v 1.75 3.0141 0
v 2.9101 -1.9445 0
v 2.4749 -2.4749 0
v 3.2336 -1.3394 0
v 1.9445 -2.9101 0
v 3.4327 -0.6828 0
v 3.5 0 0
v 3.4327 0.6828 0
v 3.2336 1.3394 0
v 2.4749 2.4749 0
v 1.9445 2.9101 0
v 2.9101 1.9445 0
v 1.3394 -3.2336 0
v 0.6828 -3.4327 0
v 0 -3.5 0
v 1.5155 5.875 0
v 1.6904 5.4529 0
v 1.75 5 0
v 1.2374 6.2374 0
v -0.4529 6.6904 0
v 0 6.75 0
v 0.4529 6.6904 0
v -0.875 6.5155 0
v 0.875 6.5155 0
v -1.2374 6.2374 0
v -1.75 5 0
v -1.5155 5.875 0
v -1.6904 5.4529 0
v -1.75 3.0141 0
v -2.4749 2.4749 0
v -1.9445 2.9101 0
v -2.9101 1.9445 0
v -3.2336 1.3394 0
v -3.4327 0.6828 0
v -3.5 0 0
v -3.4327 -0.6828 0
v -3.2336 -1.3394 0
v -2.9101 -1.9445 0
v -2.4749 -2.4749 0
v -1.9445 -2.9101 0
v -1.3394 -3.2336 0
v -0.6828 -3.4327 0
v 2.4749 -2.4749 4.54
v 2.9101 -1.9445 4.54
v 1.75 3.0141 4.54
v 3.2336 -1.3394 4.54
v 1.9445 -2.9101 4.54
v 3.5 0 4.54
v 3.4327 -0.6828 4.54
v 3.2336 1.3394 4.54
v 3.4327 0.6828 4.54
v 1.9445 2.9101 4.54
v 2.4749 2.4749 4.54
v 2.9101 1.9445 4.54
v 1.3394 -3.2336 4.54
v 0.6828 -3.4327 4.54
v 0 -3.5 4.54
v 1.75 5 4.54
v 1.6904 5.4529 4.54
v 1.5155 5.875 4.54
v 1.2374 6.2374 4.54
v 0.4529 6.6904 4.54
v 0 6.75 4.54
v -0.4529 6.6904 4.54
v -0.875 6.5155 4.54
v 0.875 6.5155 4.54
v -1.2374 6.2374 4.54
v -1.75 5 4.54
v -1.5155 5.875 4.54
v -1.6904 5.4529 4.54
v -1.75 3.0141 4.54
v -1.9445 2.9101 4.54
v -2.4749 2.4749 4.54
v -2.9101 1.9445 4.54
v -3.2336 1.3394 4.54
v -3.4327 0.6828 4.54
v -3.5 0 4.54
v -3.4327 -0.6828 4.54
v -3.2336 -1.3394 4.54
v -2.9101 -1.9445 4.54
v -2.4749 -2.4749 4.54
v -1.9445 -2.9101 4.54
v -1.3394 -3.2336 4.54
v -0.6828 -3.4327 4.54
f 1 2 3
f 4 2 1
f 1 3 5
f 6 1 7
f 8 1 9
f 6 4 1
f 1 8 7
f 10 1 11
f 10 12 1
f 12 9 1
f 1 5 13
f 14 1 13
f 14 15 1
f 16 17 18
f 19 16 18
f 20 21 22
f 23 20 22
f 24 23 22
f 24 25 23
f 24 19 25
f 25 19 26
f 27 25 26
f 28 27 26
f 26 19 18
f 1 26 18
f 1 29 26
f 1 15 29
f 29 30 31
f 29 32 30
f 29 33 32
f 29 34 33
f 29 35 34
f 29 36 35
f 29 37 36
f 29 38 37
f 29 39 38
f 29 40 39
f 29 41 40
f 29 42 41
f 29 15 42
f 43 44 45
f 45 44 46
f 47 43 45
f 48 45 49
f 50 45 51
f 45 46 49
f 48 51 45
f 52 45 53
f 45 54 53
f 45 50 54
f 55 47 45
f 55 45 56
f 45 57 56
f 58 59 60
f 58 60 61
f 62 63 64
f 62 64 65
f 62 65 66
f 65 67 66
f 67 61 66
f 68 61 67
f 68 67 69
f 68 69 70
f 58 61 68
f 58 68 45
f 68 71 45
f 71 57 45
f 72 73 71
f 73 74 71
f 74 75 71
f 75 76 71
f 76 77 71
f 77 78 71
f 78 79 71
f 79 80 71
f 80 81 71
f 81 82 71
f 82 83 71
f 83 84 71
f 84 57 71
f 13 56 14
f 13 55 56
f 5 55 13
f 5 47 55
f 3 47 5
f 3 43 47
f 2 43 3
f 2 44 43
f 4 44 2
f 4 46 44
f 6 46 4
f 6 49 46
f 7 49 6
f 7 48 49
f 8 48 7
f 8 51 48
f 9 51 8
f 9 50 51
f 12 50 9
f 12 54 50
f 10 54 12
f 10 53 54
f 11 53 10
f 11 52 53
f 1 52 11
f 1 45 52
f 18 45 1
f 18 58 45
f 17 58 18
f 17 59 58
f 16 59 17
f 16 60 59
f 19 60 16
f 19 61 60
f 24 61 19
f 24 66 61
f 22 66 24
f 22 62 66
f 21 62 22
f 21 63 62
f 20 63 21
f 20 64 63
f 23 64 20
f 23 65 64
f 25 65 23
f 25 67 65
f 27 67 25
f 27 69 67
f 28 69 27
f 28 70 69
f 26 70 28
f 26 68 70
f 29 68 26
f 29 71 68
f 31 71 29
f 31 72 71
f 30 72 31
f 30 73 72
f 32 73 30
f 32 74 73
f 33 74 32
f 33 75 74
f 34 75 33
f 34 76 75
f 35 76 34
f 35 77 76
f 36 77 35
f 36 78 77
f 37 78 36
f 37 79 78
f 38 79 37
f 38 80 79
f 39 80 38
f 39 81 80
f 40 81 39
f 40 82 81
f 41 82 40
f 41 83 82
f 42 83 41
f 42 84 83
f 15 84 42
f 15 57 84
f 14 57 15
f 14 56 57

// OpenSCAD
// Modular shadow lamp — millimetres. Read README.md and OPTICS.md.
// Self-contained OpenSCAD 2021.01 / MakerWorld Parametric Model Maker.
// The wall is XY at z=0; +z points into the room. Filled SVG areas transmit light.

/* [View] */
Output = "Assembly"; // [Assembly,Projection,Body,Cover,Print layout,Stack preview,Diagnostics]
Show_rays = false;
Show_report = true;

/* [Artwork] */
Use_svg = false;
// MakerWorld recognizes this variable as an SVG upload control.
Svg_file = "default.svg";
// Select the LONGER artwork axis. The other axis scales proportionally.
Svg_long_axis = "Y"; // [X,Y]
// Longest dimension of the complete artwork BEFORE central occlusion, in mm.
Shadow_length = 300; // [100:5:1500]
// Light shapes matches luminous outlines in the reference photo.
Artwork_mode = "Light shapes"; // [Light shapes,Dark silhouette]
Artwork_rotation = 0; // [-180:1:180]
// Smallest IMPORTANT line or gap, as % of the artwork's longest dimension.
// This is a declared design requirement, NOT an automatic SVG measurement.
Smallest_detail_percent = 5; // [0.1:0.1:20]

/* [Cylinder] */
Cylinder_diameter = 100; // [60:1:250]
// Total closed depth of one module, including its fitted cover.
Cylinder_height = 30; // [18:0.5:200]
Wall_thickness = 2; // [1.2:0.1:4]
// 0 = first module at wall; 1 = second module, etc. Recompute each module.
Module_index = 0; // [0:1:8]

/* [LED and optical quality] */
LED_position = "Automatic"; // [Automatic,Manual height]
// Height of the EMITTING CENTRE above this module's back, not package bottom.
Manual_LED_height = 24; // [0:0.1:200]
// Width of the actual emitting area, not the plastic lens or LED package.
Emitter_diameter = 0.2; // [0:0.01:5]
// Axial thickness of the emitting area. 0 assumes a planar emitter parallel to wall.
Emitter_axial_depth = 0; // [0:0.01:2]
Maximum_blur = 2; // [0.1:0.1:20]
Minimum_cut_width = 0.4; // [0.15:0.05:2]
// Emitting centre above the end of the printed pillar; measure your LED assembly.
Emitter_above_pillar = 3; // [1:0.1:10]
Pillar_diameter = 8; // [4:0.5:20]
Pillar_wire_bore = 3; // [1:0.1:6]

/* [Stencil supports] */
// Spokes interrupt light but can connect otherwise floating opaque islands.
// They do NOT guarantee connectivity for arbitrary artwork; run prepare_svg.py.
Support_bridges = true;
Bridge_count = 12; // [3:1:48]
Bridge_width = 0.8; // [0.4:0.1:2]
Bridge_rotation = 0; // [0:1:180]

/* [Joints and cover] */
Joint_depth = 2.5; // [1.5:0.1:4]
Joint_clearance = 0.2; // [0.1:0.05:0.4]
Cover_plate = 2; // [1.5:0.1:3]
// Radial pilot holes in female collars for optional retaining screws.
Retaining_screws = true;
Screw_pilot_diameter = 2.1; // [1.5:0.1:3]

/* [Quality] */
Cylinder_facets = 180; // [72:12:360]

/* [Hidden] */
$fn = Cylinder_facets;
eps = 0.02;
// prepare_svg.py replaces this block with normalized, embedded SVG geometry.
Embedded_artwork = false;
Embedded_radius_factor = 0.7071067811865476;
// Extra bridge angles added by the helper after checking the actual exported mesh.
Embedded_bridge_angles = [];
// BEGIN EMBEDDED ARTWORK
module embedded_artwork() { square(1, center=true); }
// END EMBEDDED ARTWORK

R = Cylinder_diameter/2;
Ri = R-Wall_thickness;
frame_width = max(4, Wall_thickness+2);
Rf = R-frame_width;
rear_floor = Joint_depth + 2;
rear_guard = 1;
front_guard = 3;
cover_depth = Joint_depth + Cover_plate;
pitch = Cylinder_height-cover_depth;
wall_offset = Module_index*pitch;
aperture_bottom = rear_floor+rear_guard;
aperture_top = pitch-front_guard;
tongue_outer = R-1.4;
tongue_inner = tongue_outer-1.6;
// A square's diagonal gives a conservative envelope for direct SVG import.
// The helper calculates a tighter radius from the actual polygon vertices.
k = Embedded_artwork ? Embedded_radius_factor : (Use_svg ? sqrt(2)/2 : 0.5);
detail_fraction = Smallest_detail_percent/100;
r_far = k*Shadow_length;

function off(H) = Module_index*(H-cover_depth);
function top(H) = off(H)+H-cover_depth-front_guard;
function bottom(H) = off(H)+aperture_bottom;
function ceiling(H) = off(H)+H-Cover_plate-1.5;
// Upper collar is thicker than the optical sidewall, hence Rf, not Ri.
function auto_source(H,L) = min(ceiling(H),
    k*L>Rf ? top(H)/(1-Rf/(k*L)) : ceiling(H));
function source(H,L) = LED_position=="Manual height" ? off(H)+Manual_LED_height : auto_source(H,L);
function dead_radius(H,L) = let(h=source(H,L))
    h>bottom(H) ? max(R*h/(h-bottom(H)), Pillar_diameter/2*h/Emitter_above_pillar) : 1e12;
// Least local stretch from wall artwork to inner cylindrical surface.
function cut_estimate(H,L) = let(h=source(H,L), r=k*L)
    detail_fraction*L*min(Ri/r,h*Ri/(r*r));
// Conservative sum of transverse and axial geometric source blur.
function blur_estimate(H,L) = let(h=source(H,L),r=k*L)
    max(0,r/Ri-1)*(Emitter_diameter+Emitter_axial_depth*r/max(h,eps));
function mechanical_ok(H,L) =
    H-cover_depth-front_guard > aperture_bottom+1 &&
    Ri>Pillar_diameter/2+5 && Rf>tongue_inner-3 &&
    tongue_inner-Joint_clearance>Rf &&
    tongue_outer+Joint_clearance+0.4<R-0.5 &&
    Pillar_wire_bore<Pillar_diameter-1.6 &&
    Screw_pilot_diameter<Joint_depth &&
    source(H,L)-off(H)-Emitter_above_pillar>rear_floor+1;
function quality_ok(H,L) = cut_estimate(H,L)>=Minimum_cut_width-1e-9 &&
    blur_estimate(H,L)<=Maximum_blur+1e-9;
function feasible(H,L) = mechanical_ok(H,L) && quality_ok(H,L) &&
    source(H,L)>bottom(H)+1 && source(H,L)<=ceiling(H)+1e-9 &&
    source(H,L)<=auto_source(H,L)+1e-9 &&
    L/2>dead_radius(H,L)+Minimum_cut_width;
// Quality decreases monotonically with L in automatic mode. Search 0.01 mm.
function max_length(H,lo,hi,n=18) = n==0 ? lo :
    let(mid=(lo+hi)/2) quality_ok(H,mid) ? max_length(H,mid,hi,n-1) : max_length(H,lo,mid,n-1);
function length_at_height(H) = quality_ok(H,Shadow_length) ? Shadow_length :
    quality_ok(H,2*R+1) ? floor(max_length(H,2*R+1,Shadow_length)*10)/10 : 0;
function cost(pair) = pow((pair[0]-Cylinder_height)/Cylinder_height,2)+
    pow((pair[1]-Shadow_length)/Shadow_length,2);
function best_pair(a,i=0,b=undef) = i>=len(a) ? b :
    best_pair(a,i+1,is_undef(b) || cost(a[i])<cost(b) ? a[i] : b);

h = source(Cylinder_height,Shadow_length);
local_h = h-wall_offset;
dead = dead_radius(Cylinder_height,Shadow_length);
valid = feasible(Cylinder_height,Shadow_length);
// Nearest means this explicitly weighted, bounded grid; never a global claim.
search_max = min(300,max(160,3*Cylinder_height));
suggestions = valid || LED_position!="Automatic" ? [] : [
    for(H=[Cylinder_height:1:search_max]) let(L=length_at_height(H))
        if(L>0 && feasible(H,L)) [H,L]
];
nearest = best_pair(suggestions);
same_height_L = valid ? Shadow_length : length_at_height(Cylinder_height);
same_length_options = valid ? [] : [for(H=[Cylinder_height:1:search_max])
    if(feasible(H,Shadow_length)) H];
same_length_H = len(same_length_options)>0 ? same_length_options[0] : undef;
suggestion_text = is_undef(nearest) ? "No candidate in search range; change diameter, detail or emitter." :
    str("Try height ",nearest[0]," mm, shadow ",nearest[1]," mm.");

assert(Cylinder_diameter>0 && Cylinder_height>0 && Shadow_length>0,"Dimensions must be positive.");
assert(Smallest_detail_percent>0 && Minimum_cut_width>0 && Maximum_blur>0,"Quality limits must be positive.");
assert(Emitter_diameter>=0 && Emitter_axial_depth>=0,"Emitter sizes cannot be negative.");
assert(Module_index>=0 && Module_index==floor(Module_index),"Module index must be a non-negative integer.");
assert(Bridge_count>=1 && Joint_clearance>=0 && Emitter_above_pillar>0,"Invalid support/joint parameters.");

echo("STATUS", valid ? "OPTICAL ENVELOPE PASSES; SVG topology still requires checking" :
    "GENERATION NOT POSSIBLE under the selected limits");
echo("LED centre, local XYZ mm",[0,0,local_h]);
echo("LED centre, wall XYZ mm",[0,0,h]);
echo("Closed first-module depth / stacking pitch mm",[Cylinder_height,pitch]);
echo("Central occlusion radius mm",dead);
echo("Conservative artwork radius / smallest declared detail mm",[r_far,detail_fraction*Shadow_length]);
echo("Estimated minimum cut / selected minimum mm",[cut_estimate(Cylinder_height,Shadow_length),Minimum_cut_width]);
echo("Estimated worst geometric blur / selected maximum mm",[blur_estimate(Cylinder_height,Shadow_length),Maximum_blur]);
echo("LED XY is the analytic minimax solution for a concentric 360-degree field; not an arbitrary-artwork optimum.");
echo("Preview is an ideal geometric footprint, not a photometric simulation. Source extent can only worsen it.");
echo("Centre is intentionally occluded; support spokes intentionally remove light. Floating islands are not auto-detected here.");
if(!valid) {
    echo("SUGGESTED sampled compromise [height,shadow] mm",nearest);
    echo("Keep height: shadow mm", feasible(Cylinder_height,same_height_L) ? same_height_L : "No feasible smaller length in range");
    echo("Keep shadow: height mm",is_undef(same_length_H) ? "No feasible height <= search limit" : same_length_H);
    echo("Search: height increases in 1 mm steps, <=300 mm; equal squared relative changes in height and shadow length.");
    if(LED_position!="Automatic") echo("Switch LED_position to Automatic for reliable suggestions.");
}

// An original, open-aperture sunburst demo; no external file required.
module demo_artwork() {
    for(a=[0:30:330]) rotate(a)
        hull() {
            translate([0.24,0]) circle(r=0.038,$fn=16);
            translate([0.46,0]) circle(r=0.04,$fn=16);
        }
}
module normalized_artwork() {
    if(Embedded_artwork) embedded_artwork();
    else if(Use_svg) {
        if(Svg_long_axis=="X") resize([1,0],auto=true) import(file=Svg_file,center=true,convexity=20);
        else resize([0,1],auto=true) import(file=Svg_file,center=true,convexity=20);
    } else demo_artwork();
}
module target_artwork() {
    rotate(Artwork_rotation) scale(Shadow_length) normalized_artwork();
}
module intended_light() {
    if(Artwork_mode=="Light shapes") target_artwork();
    else difference() { circle(r=r_far); target_artwork(); }
}
// A perspective cone. This cuts oblique tunnels through the FULL wall thickness.
// Cropping the extrusion just below its apex avoids degenerate mesh vertices.
module light_cone() {
    apex_gap = 0.05;
    translate([0,0,-wall_offset])
        linear_extrude(height=h-apex_gap,scale=apex_gap/h,convexity=30)
            intended_light();
}
// These wedges have constant angular width. Their shadows are exactly wedges.
module bridge_wedges_2d(radius) {
    angle = 2*asin(min(0.99,Bridge_width/(2*Ri)));
    angles = concat([for(a=[0:360/Bridge_count:360-360/Bridge_count]) a+Bridge_rotation],Embedded_bridge_angles);
    for(a=angles)
        rotate(a)
            polygon([[0,0],[radius*cos(angle/2),radius*sin(angle/2)],
                [radius*cos(angle/2),-radius*sin(angle/2)]]);
}
module optical_cutters() {
    difference() {
        intersection() {
            light_cone();
            translate([0,0,aperture_bottom]) cylinder(r=R+1,h=aperture_top-aperture_bottom);
        }
        if(Support_bridges) translate([0,0,aperture_bottom-eps])
            linear_extrude(height=aperture_top-aperture_bottom+2*eps)
                bridge_wedges_2d(R+3);
    }
}
module ring(outer,inner,height) {
    difference() { cylinder(r=outer,h=height); translate([0,0,-eps]) cylinder(r=inner,h=height+2*eps); }
}
module tongue() {
    ring(tongue_outer,tongue_inner,Joint_depth);
    // Registration key; all modules and their artwork share an angular datum.
    translate([tongue_outer-0.3,-1,0]) cube([0.7,2,Joint_depth]);
}
module socket() {
    translate([0,0,-eps]) ring(tongue_outer+Joint_clearance,
        tongue_inner-Joint_clearance,Joint_depth+Joint_clearance+eps);
    translate([tongue_outer-0.3-Joint_clearance,-1-Joint_clearance,-eps])
        cube([0.7+2*Joint_clearance,2+2*Joint_clearance,Joint_depth+Joint_clearance+eps]);
}
module retaining_holes() {
    if(Retaining_screws) for(a=[60,180,300]) rotate([0,0,a])
        translate([R+eps,0,Joint_depth/2]) rotate([0,-90,0])
            cylinder(d=Screw_pilot_diameter,h=R-tongue_inner+eps,$fn=24);
}
module keyhole() {
    // Two 3.5 mm screw shafts, 7 mm entry heads. Insert then slide lamp down 5 mm.
    linear_extrude(height=rear_floor+2*eps) union() {
        circle(d=7,$fn=32);
        hull() { circle(d=3.5,$fn=24); translate([0,5]) circle(d=3.5,$fn=24); }
    }
}
module body() {
    difference() {
        union() {
            difference() {
                union() {
                    cylinder(r=R,h=rear_floor);
                    ring(R,Ri,pitch);
                    translate([0,0,aperture_top]) ring(R,Rf,front_guard);
                    translate([0,0,pitch-eps]) tongue();
                }
                optical_cutters();
            }
            // Thin hollow pedestal. Emitting centre is Emitter_above_pillar higher.
            translate([0,0,rear_floor-eps])
                cylinder(d=Pillar_diameter,h=local_h-Emitter_above_pillar-rear_floor+eps);
        }
        socket();
        if(Module_index>0) retaining_holes();
        translate([0,0,-eps]) cylinder(d=Pillar_wire_bore,h=local_h+eps,$fn=32);
        if(Module_index==0) for(x=[-R/2,R/2]) translate([x,0,-eps]) keyhole();
        // Rear cable route, contained under the opaque rear floor.
        translate([-Pillar_wire_bore/2,-R-1,-eps]) cube([Pillar_wire_bore,R+1,1.2]);
    }
}
module cover() {
    difference() {
        cylinder(r=R,h=cover_depth);
        socket();
        // Electronics clearance under the opaque lid plate.
        translate([0,0,-eps]) cylinder(r=Rf,h=Joint_depth+Joint_clearance+eps);
        retaining_holes();
    }
}
module printable_cover() {
    translate([0,0,cover_depth]) rotate([180,0,0]) cover();
}
module projected_light() {
    difference() {
        intersection() {
            intended_light();
            // Outer opening edge clips rays when the source is above the aperture.
            circle(r=h>wall_offset+aperture_top ?
                Ri*h/(h-wall_offset-aperture_top) : max(Shadow_length*3,r_far*3));
            // Thicker front rim may clip earlier than the optical sidewall.
            circle(r=h>wall_offset+aperture_top ?
                Rf*h/(h-wall_offset-aperture_top) : max(Shadow_length*3,r_far*3));
        }
        circle(r=dead);
        if(Support_bridges) bridge_wedges_2d(max(Shadow_length*3,r_far*3));
    }
}
module led_marker() {
    translate([0,0,h]) color([1,0.62,0.12]) sphere(r=1.3,$fn=24);
}
module wall_preview() {
    extent = max(Shadow_length*0.62,R*1.5);
    color([0.055,0.066,0.08]) translate([-extent,-extent,-1.2]) cube([2*extent,2*extent,1]);
    color([1,0.83,0.42]) translate([0,0,-0.15]) linear_extrude(height=0.08) projected_light();
}
module sample_rays() {
    for(a=[15:60:315]) color([1,0.75,0.2,0.45]) hull() {
        translate([0,0,h]) sphere(r=0.2,$fn=8);
        translate([r_far*cos(a),r_far*sin(a),0]) sphere(r=0.2,$fn=8);
    }
}
module diagnostics() {
    lines = [valid ? "OPTICAL ENVELOPE: PASS" : "GENERATION NOT POSSIBLE",
        str("LED xyz = 0, 0, ",round(local_h*100)/100," mm (local)"),
        str("Centre hidden: radius ",round(dead*10)/10," mm"),
        str("Cut estimate: ",round(cut_estimate(Cylinder_height,Shadow_length)*1000)/1000," mm"),
        str("Blur estimate: ",round(blur_estimate(Cylinder_height,Shadow_length)*100)/100," mm"),
        valid ? "Check stencil connectivity before printing." : suggestion_text];
    for(i=[0:len(lines)-1]) translate([0,-i*6,0])
        color(valid ? [0.4,0.9,0.6] : [1,0.25,0.15])
            linear_extrude(height=0.6) text(lines[i],size=4);
}

keyhole();
